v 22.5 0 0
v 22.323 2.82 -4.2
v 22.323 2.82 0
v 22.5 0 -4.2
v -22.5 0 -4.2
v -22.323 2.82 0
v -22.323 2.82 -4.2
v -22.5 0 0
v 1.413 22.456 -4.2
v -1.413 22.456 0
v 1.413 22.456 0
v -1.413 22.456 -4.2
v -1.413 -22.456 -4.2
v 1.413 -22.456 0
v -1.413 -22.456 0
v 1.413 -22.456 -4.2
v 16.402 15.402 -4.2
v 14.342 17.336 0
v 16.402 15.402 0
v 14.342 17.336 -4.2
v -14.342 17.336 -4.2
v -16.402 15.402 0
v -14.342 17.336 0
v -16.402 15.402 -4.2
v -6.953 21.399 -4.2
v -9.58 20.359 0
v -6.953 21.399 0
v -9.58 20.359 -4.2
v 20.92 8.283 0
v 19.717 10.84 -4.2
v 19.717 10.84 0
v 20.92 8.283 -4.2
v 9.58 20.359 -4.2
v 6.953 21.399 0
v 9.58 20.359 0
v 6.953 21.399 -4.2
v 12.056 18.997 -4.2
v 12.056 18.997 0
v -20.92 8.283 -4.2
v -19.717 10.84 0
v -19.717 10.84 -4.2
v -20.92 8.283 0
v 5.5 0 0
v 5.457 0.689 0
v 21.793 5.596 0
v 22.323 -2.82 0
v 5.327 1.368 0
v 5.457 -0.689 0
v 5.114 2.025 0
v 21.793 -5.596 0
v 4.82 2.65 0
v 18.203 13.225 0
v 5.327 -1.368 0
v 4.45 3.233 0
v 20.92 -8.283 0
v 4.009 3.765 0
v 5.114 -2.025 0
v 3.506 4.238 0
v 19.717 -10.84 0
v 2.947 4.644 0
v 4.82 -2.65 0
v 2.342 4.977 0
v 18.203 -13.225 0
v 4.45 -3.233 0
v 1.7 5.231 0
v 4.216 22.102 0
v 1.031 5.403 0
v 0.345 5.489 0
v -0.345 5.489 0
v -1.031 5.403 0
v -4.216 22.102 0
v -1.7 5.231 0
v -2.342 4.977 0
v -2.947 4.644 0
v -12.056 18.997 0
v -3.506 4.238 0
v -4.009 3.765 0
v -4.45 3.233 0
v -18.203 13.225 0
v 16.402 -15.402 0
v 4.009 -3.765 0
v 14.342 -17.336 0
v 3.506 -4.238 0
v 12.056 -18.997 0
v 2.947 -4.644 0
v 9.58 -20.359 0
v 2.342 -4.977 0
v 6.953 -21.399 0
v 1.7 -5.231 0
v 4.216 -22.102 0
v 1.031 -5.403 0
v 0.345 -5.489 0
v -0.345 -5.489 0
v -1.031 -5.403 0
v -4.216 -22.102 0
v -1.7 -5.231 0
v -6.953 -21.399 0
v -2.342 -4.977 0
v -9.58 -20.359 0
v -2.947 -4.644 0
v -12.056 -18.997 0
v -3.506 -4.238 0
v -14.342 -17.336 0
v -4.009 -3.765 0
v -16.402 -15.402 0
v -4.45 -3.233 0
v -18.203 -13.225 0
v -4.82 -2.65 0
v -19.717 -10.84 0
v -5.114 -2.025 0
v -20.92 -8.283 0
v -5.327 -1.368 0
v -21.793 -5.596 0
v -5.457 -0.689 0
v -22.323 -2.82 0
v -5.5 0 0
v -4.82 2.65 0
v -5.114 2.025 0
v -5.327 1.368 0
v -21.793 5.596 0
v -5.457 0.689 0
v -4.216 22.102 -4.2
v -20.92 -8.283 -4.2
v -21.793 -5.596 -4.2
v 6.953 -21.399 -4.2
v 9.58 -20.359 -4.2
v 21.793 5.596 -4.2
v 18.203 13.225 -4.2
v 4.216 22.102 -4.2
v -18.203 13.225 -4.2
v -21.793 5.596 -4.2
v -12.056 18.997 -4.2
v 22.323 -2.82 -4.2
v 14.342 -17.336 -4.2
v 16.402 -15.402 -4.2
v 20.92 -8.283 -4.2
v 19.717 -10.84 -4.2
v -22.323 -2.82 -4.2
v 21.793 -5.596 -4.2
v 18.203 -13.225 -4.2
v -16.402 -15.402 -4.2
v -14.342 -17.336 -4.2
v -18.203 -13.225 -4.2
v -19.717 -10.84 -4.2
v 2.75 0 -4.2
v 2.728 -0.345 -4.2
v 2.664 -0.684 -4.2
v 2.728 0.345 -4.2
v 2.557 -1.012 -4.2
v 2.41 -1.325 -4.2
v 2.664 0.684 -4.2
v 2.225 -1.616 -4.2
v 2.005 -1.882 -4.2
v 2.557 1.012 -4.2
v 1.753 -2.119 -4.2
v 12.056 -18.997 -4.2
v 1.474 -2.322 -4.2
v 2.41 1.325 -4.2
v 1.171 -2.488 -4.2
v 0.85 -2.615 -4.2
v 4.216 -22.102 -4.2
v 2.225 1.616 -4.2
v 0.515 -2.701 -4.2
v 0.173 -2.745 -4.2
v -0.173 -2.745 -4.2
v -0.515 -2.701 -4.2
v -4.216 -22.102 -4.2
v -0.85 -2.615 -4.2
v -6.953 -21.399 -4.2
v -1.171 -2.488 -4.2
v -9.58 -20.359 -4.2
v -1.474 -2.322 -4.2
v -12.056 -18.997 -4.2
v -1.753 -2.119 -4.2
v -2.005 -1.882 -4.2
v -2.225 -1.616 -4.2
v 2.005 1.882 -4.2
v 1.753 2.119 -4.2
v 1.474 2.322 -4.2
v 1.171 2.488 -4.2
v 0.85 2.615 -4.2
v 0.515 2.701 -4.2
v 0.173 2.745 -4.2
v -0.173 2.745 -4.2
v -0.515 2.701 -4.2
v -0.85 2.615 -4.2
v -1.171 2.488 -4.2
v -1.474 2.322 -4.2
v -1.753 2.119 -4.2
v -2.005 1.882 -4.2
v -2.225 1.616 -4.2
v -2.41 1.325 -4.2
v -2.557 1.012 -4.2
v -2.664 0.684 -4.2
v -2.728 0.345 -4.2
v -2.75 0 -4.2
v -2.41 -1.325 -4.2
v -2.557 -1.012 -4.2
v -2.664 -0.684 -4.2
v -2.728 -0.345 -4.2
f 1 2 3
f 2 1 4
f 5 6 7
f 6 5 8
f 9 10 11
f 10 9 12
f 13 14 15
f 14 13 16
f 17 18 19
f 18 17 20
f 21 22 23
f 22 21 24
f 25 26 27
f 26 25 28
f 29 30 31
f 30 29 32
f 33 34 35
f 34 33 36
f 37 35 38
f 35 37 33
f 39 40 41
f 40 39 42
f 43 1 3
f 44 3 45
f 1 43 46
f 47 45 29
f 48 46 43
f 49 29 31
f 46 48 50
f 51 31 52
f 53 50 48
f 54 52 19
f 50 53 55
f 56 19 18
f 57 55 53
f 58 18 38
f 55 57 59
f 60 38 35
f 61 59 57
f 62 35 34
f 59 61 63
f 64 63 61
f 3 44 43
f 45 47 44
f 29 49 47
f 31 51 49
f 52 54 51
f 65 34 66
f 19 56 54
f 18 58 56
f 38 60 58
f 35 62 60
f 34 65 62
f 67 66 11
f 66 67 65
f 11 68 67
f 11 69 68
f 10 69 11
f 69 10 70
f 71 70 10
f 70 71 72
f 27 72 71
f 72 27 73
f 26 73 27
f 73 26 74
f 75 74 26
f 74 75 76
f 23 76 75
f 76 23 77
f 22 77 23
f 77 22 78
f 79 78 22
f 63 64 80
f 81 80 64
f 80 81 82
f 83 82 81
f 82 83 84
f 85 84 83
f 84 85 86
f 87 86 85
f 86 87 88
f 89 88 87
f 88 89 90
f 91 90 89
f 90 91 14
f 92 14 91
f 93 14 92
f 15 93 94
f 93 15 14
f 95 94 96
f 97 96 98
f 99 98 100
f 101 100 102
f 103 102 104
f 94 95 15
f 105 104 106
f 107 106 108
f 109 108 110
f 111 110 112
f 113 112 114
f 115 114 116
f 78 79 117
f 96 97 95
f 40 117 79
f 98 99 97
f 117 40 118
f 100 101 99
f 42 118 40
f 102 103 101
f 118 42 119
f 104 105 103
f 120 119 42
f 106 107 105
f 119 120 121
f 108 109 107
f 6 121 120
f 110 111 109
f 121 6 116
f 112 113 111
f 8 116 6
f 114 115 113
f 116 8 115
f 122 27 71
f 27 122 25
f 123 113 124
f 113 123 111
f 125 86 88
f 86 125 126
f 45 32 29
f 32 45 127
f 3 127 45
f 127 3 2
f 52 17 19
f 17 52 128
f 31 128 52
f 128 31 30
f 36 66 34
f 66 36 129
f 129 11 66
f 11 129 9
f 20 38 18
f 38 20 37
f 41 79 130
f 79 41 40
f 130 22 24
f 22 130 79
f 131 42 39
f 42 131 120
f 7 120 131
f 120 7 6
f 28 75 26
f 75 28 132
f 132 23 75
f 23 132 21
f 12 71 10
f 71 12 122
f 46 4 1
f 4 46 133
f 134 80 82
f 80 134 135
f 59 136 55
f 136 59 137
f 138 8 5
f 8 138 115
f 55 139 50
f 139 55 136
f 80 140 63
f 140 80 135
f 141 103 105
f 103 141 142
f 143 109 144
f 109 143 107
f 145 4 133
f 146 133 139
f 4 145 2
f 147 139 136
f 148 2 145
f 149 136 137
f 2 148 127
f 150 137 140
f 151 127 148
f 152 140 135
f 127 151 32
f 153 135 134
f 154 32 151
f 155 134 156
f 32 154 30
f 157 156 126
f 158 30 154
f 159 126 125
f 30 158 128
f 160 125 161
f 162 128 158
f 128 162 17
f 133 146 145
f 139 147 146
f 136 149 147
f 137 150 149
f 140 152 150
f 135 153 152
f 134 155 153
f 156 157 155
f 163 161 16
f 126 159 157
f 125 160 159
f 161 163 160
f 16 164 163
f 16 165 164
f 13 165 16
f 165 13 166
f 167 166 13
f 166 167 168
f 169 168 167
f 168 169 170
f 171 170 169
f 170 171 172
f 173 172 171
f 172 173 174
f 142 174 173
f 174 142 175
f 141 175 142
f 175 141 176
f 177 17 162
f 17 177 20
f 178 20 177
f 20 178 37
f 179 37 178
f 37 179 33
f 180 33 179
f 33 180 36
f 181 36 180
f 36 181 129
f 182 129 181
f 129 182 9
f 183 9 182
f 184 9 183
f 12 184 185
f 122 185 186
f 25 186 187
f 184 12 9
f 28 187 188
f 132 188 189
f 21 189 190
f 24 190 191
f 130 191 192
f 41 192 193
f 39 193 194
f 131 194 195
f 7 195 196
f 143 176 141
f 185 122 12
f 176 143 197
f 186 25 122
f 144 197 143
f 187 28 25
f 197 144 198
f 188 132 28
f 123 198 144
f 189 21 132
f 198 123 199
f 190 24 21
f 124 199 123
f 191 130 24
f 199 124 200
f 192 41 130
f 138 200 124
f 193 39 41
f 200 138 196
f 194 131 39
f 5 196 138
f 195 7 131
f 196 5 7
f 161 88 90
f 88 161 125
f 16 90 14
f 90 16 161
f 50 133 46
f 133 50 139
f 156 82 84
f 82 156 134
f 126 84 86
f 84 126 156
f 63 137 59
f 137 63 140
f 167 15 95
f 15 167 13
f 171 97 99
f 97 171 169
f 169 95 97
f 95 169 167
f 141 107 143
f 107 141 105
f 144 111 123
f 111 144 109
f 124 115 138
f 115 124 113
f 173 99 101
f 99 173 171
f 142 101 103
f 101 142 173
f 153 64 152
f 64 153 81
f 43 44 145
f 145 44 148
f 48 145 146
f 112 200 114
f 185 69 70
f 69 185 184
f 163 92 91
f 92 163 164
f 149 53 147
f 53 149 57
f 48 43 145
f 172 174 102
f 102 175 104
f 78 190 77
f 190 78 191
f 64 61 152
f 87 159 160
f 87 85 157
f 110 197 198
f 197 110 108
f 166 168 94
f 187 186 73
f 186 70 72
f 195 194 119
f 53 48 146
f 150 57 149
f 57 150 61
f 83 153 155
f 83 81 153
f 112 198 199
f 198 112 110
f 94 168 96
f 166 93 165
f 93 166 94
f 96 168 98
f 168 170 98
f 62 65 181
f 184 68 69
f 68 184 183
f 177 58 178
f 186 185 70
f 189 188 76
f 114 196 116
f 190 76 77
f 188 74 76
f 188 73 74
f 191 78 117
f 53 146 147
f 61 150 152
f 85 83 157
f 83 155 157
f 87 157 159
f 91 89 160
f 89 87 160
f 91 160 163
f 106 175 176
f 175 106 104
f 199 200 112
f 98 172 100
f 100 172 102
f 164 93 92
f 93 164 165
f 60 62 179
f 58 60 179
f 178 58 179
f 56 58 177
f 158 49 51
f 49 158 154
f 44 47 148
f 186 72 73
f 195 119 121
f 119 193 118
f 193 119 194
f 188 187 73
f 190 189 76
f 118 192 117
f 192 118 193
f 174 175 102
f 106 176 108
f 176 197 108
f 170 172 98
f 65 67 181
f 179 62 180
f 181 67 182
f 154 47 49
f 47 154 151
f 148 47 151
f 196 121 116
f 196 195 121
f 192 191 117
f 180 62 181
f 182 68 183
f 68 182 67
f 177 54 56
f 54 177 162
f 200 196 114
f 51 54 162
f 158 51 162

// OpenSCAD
$fn = 50;


difference() {
	union() {
		translate(v = [0, 0, -4.2000000000]) {
			cylinder(h = 4.2000000000, r = 22.5000000000);
		}
		translate(v = [0, 0, -4.2000000000]) {
			cylinder(h = 4.2000000000, r = 2.8750000000);
		}
	}
	union() {
		translate(v = [0, 0, 0]) {
			rotate(a = [0, 0, 0]) {
				difference() {
					union() {
						translate(v = [0, 0, -4.2000000000]) {
							cylinder(h = 4.2000000000, r = 2.2500000000);
						}
						translate(v = [0, 0, -4.2000000000]) {
							cylinder(h = 4.2000000000, r1 = 2.7500000000, r2 = 5.5000000000);
						}
						translate(v = [0, 0, -4.2000000000]) {
							cylinder(h = 4.2000000000, r = 2.7500000000);
						}
						translate(v = [0, 0, -4.2000000000]) {
							cylinder(h = 4.2000000000, r = 2.2500000000);
						}
					}
					union();
				}
			}
		}
	}
}
